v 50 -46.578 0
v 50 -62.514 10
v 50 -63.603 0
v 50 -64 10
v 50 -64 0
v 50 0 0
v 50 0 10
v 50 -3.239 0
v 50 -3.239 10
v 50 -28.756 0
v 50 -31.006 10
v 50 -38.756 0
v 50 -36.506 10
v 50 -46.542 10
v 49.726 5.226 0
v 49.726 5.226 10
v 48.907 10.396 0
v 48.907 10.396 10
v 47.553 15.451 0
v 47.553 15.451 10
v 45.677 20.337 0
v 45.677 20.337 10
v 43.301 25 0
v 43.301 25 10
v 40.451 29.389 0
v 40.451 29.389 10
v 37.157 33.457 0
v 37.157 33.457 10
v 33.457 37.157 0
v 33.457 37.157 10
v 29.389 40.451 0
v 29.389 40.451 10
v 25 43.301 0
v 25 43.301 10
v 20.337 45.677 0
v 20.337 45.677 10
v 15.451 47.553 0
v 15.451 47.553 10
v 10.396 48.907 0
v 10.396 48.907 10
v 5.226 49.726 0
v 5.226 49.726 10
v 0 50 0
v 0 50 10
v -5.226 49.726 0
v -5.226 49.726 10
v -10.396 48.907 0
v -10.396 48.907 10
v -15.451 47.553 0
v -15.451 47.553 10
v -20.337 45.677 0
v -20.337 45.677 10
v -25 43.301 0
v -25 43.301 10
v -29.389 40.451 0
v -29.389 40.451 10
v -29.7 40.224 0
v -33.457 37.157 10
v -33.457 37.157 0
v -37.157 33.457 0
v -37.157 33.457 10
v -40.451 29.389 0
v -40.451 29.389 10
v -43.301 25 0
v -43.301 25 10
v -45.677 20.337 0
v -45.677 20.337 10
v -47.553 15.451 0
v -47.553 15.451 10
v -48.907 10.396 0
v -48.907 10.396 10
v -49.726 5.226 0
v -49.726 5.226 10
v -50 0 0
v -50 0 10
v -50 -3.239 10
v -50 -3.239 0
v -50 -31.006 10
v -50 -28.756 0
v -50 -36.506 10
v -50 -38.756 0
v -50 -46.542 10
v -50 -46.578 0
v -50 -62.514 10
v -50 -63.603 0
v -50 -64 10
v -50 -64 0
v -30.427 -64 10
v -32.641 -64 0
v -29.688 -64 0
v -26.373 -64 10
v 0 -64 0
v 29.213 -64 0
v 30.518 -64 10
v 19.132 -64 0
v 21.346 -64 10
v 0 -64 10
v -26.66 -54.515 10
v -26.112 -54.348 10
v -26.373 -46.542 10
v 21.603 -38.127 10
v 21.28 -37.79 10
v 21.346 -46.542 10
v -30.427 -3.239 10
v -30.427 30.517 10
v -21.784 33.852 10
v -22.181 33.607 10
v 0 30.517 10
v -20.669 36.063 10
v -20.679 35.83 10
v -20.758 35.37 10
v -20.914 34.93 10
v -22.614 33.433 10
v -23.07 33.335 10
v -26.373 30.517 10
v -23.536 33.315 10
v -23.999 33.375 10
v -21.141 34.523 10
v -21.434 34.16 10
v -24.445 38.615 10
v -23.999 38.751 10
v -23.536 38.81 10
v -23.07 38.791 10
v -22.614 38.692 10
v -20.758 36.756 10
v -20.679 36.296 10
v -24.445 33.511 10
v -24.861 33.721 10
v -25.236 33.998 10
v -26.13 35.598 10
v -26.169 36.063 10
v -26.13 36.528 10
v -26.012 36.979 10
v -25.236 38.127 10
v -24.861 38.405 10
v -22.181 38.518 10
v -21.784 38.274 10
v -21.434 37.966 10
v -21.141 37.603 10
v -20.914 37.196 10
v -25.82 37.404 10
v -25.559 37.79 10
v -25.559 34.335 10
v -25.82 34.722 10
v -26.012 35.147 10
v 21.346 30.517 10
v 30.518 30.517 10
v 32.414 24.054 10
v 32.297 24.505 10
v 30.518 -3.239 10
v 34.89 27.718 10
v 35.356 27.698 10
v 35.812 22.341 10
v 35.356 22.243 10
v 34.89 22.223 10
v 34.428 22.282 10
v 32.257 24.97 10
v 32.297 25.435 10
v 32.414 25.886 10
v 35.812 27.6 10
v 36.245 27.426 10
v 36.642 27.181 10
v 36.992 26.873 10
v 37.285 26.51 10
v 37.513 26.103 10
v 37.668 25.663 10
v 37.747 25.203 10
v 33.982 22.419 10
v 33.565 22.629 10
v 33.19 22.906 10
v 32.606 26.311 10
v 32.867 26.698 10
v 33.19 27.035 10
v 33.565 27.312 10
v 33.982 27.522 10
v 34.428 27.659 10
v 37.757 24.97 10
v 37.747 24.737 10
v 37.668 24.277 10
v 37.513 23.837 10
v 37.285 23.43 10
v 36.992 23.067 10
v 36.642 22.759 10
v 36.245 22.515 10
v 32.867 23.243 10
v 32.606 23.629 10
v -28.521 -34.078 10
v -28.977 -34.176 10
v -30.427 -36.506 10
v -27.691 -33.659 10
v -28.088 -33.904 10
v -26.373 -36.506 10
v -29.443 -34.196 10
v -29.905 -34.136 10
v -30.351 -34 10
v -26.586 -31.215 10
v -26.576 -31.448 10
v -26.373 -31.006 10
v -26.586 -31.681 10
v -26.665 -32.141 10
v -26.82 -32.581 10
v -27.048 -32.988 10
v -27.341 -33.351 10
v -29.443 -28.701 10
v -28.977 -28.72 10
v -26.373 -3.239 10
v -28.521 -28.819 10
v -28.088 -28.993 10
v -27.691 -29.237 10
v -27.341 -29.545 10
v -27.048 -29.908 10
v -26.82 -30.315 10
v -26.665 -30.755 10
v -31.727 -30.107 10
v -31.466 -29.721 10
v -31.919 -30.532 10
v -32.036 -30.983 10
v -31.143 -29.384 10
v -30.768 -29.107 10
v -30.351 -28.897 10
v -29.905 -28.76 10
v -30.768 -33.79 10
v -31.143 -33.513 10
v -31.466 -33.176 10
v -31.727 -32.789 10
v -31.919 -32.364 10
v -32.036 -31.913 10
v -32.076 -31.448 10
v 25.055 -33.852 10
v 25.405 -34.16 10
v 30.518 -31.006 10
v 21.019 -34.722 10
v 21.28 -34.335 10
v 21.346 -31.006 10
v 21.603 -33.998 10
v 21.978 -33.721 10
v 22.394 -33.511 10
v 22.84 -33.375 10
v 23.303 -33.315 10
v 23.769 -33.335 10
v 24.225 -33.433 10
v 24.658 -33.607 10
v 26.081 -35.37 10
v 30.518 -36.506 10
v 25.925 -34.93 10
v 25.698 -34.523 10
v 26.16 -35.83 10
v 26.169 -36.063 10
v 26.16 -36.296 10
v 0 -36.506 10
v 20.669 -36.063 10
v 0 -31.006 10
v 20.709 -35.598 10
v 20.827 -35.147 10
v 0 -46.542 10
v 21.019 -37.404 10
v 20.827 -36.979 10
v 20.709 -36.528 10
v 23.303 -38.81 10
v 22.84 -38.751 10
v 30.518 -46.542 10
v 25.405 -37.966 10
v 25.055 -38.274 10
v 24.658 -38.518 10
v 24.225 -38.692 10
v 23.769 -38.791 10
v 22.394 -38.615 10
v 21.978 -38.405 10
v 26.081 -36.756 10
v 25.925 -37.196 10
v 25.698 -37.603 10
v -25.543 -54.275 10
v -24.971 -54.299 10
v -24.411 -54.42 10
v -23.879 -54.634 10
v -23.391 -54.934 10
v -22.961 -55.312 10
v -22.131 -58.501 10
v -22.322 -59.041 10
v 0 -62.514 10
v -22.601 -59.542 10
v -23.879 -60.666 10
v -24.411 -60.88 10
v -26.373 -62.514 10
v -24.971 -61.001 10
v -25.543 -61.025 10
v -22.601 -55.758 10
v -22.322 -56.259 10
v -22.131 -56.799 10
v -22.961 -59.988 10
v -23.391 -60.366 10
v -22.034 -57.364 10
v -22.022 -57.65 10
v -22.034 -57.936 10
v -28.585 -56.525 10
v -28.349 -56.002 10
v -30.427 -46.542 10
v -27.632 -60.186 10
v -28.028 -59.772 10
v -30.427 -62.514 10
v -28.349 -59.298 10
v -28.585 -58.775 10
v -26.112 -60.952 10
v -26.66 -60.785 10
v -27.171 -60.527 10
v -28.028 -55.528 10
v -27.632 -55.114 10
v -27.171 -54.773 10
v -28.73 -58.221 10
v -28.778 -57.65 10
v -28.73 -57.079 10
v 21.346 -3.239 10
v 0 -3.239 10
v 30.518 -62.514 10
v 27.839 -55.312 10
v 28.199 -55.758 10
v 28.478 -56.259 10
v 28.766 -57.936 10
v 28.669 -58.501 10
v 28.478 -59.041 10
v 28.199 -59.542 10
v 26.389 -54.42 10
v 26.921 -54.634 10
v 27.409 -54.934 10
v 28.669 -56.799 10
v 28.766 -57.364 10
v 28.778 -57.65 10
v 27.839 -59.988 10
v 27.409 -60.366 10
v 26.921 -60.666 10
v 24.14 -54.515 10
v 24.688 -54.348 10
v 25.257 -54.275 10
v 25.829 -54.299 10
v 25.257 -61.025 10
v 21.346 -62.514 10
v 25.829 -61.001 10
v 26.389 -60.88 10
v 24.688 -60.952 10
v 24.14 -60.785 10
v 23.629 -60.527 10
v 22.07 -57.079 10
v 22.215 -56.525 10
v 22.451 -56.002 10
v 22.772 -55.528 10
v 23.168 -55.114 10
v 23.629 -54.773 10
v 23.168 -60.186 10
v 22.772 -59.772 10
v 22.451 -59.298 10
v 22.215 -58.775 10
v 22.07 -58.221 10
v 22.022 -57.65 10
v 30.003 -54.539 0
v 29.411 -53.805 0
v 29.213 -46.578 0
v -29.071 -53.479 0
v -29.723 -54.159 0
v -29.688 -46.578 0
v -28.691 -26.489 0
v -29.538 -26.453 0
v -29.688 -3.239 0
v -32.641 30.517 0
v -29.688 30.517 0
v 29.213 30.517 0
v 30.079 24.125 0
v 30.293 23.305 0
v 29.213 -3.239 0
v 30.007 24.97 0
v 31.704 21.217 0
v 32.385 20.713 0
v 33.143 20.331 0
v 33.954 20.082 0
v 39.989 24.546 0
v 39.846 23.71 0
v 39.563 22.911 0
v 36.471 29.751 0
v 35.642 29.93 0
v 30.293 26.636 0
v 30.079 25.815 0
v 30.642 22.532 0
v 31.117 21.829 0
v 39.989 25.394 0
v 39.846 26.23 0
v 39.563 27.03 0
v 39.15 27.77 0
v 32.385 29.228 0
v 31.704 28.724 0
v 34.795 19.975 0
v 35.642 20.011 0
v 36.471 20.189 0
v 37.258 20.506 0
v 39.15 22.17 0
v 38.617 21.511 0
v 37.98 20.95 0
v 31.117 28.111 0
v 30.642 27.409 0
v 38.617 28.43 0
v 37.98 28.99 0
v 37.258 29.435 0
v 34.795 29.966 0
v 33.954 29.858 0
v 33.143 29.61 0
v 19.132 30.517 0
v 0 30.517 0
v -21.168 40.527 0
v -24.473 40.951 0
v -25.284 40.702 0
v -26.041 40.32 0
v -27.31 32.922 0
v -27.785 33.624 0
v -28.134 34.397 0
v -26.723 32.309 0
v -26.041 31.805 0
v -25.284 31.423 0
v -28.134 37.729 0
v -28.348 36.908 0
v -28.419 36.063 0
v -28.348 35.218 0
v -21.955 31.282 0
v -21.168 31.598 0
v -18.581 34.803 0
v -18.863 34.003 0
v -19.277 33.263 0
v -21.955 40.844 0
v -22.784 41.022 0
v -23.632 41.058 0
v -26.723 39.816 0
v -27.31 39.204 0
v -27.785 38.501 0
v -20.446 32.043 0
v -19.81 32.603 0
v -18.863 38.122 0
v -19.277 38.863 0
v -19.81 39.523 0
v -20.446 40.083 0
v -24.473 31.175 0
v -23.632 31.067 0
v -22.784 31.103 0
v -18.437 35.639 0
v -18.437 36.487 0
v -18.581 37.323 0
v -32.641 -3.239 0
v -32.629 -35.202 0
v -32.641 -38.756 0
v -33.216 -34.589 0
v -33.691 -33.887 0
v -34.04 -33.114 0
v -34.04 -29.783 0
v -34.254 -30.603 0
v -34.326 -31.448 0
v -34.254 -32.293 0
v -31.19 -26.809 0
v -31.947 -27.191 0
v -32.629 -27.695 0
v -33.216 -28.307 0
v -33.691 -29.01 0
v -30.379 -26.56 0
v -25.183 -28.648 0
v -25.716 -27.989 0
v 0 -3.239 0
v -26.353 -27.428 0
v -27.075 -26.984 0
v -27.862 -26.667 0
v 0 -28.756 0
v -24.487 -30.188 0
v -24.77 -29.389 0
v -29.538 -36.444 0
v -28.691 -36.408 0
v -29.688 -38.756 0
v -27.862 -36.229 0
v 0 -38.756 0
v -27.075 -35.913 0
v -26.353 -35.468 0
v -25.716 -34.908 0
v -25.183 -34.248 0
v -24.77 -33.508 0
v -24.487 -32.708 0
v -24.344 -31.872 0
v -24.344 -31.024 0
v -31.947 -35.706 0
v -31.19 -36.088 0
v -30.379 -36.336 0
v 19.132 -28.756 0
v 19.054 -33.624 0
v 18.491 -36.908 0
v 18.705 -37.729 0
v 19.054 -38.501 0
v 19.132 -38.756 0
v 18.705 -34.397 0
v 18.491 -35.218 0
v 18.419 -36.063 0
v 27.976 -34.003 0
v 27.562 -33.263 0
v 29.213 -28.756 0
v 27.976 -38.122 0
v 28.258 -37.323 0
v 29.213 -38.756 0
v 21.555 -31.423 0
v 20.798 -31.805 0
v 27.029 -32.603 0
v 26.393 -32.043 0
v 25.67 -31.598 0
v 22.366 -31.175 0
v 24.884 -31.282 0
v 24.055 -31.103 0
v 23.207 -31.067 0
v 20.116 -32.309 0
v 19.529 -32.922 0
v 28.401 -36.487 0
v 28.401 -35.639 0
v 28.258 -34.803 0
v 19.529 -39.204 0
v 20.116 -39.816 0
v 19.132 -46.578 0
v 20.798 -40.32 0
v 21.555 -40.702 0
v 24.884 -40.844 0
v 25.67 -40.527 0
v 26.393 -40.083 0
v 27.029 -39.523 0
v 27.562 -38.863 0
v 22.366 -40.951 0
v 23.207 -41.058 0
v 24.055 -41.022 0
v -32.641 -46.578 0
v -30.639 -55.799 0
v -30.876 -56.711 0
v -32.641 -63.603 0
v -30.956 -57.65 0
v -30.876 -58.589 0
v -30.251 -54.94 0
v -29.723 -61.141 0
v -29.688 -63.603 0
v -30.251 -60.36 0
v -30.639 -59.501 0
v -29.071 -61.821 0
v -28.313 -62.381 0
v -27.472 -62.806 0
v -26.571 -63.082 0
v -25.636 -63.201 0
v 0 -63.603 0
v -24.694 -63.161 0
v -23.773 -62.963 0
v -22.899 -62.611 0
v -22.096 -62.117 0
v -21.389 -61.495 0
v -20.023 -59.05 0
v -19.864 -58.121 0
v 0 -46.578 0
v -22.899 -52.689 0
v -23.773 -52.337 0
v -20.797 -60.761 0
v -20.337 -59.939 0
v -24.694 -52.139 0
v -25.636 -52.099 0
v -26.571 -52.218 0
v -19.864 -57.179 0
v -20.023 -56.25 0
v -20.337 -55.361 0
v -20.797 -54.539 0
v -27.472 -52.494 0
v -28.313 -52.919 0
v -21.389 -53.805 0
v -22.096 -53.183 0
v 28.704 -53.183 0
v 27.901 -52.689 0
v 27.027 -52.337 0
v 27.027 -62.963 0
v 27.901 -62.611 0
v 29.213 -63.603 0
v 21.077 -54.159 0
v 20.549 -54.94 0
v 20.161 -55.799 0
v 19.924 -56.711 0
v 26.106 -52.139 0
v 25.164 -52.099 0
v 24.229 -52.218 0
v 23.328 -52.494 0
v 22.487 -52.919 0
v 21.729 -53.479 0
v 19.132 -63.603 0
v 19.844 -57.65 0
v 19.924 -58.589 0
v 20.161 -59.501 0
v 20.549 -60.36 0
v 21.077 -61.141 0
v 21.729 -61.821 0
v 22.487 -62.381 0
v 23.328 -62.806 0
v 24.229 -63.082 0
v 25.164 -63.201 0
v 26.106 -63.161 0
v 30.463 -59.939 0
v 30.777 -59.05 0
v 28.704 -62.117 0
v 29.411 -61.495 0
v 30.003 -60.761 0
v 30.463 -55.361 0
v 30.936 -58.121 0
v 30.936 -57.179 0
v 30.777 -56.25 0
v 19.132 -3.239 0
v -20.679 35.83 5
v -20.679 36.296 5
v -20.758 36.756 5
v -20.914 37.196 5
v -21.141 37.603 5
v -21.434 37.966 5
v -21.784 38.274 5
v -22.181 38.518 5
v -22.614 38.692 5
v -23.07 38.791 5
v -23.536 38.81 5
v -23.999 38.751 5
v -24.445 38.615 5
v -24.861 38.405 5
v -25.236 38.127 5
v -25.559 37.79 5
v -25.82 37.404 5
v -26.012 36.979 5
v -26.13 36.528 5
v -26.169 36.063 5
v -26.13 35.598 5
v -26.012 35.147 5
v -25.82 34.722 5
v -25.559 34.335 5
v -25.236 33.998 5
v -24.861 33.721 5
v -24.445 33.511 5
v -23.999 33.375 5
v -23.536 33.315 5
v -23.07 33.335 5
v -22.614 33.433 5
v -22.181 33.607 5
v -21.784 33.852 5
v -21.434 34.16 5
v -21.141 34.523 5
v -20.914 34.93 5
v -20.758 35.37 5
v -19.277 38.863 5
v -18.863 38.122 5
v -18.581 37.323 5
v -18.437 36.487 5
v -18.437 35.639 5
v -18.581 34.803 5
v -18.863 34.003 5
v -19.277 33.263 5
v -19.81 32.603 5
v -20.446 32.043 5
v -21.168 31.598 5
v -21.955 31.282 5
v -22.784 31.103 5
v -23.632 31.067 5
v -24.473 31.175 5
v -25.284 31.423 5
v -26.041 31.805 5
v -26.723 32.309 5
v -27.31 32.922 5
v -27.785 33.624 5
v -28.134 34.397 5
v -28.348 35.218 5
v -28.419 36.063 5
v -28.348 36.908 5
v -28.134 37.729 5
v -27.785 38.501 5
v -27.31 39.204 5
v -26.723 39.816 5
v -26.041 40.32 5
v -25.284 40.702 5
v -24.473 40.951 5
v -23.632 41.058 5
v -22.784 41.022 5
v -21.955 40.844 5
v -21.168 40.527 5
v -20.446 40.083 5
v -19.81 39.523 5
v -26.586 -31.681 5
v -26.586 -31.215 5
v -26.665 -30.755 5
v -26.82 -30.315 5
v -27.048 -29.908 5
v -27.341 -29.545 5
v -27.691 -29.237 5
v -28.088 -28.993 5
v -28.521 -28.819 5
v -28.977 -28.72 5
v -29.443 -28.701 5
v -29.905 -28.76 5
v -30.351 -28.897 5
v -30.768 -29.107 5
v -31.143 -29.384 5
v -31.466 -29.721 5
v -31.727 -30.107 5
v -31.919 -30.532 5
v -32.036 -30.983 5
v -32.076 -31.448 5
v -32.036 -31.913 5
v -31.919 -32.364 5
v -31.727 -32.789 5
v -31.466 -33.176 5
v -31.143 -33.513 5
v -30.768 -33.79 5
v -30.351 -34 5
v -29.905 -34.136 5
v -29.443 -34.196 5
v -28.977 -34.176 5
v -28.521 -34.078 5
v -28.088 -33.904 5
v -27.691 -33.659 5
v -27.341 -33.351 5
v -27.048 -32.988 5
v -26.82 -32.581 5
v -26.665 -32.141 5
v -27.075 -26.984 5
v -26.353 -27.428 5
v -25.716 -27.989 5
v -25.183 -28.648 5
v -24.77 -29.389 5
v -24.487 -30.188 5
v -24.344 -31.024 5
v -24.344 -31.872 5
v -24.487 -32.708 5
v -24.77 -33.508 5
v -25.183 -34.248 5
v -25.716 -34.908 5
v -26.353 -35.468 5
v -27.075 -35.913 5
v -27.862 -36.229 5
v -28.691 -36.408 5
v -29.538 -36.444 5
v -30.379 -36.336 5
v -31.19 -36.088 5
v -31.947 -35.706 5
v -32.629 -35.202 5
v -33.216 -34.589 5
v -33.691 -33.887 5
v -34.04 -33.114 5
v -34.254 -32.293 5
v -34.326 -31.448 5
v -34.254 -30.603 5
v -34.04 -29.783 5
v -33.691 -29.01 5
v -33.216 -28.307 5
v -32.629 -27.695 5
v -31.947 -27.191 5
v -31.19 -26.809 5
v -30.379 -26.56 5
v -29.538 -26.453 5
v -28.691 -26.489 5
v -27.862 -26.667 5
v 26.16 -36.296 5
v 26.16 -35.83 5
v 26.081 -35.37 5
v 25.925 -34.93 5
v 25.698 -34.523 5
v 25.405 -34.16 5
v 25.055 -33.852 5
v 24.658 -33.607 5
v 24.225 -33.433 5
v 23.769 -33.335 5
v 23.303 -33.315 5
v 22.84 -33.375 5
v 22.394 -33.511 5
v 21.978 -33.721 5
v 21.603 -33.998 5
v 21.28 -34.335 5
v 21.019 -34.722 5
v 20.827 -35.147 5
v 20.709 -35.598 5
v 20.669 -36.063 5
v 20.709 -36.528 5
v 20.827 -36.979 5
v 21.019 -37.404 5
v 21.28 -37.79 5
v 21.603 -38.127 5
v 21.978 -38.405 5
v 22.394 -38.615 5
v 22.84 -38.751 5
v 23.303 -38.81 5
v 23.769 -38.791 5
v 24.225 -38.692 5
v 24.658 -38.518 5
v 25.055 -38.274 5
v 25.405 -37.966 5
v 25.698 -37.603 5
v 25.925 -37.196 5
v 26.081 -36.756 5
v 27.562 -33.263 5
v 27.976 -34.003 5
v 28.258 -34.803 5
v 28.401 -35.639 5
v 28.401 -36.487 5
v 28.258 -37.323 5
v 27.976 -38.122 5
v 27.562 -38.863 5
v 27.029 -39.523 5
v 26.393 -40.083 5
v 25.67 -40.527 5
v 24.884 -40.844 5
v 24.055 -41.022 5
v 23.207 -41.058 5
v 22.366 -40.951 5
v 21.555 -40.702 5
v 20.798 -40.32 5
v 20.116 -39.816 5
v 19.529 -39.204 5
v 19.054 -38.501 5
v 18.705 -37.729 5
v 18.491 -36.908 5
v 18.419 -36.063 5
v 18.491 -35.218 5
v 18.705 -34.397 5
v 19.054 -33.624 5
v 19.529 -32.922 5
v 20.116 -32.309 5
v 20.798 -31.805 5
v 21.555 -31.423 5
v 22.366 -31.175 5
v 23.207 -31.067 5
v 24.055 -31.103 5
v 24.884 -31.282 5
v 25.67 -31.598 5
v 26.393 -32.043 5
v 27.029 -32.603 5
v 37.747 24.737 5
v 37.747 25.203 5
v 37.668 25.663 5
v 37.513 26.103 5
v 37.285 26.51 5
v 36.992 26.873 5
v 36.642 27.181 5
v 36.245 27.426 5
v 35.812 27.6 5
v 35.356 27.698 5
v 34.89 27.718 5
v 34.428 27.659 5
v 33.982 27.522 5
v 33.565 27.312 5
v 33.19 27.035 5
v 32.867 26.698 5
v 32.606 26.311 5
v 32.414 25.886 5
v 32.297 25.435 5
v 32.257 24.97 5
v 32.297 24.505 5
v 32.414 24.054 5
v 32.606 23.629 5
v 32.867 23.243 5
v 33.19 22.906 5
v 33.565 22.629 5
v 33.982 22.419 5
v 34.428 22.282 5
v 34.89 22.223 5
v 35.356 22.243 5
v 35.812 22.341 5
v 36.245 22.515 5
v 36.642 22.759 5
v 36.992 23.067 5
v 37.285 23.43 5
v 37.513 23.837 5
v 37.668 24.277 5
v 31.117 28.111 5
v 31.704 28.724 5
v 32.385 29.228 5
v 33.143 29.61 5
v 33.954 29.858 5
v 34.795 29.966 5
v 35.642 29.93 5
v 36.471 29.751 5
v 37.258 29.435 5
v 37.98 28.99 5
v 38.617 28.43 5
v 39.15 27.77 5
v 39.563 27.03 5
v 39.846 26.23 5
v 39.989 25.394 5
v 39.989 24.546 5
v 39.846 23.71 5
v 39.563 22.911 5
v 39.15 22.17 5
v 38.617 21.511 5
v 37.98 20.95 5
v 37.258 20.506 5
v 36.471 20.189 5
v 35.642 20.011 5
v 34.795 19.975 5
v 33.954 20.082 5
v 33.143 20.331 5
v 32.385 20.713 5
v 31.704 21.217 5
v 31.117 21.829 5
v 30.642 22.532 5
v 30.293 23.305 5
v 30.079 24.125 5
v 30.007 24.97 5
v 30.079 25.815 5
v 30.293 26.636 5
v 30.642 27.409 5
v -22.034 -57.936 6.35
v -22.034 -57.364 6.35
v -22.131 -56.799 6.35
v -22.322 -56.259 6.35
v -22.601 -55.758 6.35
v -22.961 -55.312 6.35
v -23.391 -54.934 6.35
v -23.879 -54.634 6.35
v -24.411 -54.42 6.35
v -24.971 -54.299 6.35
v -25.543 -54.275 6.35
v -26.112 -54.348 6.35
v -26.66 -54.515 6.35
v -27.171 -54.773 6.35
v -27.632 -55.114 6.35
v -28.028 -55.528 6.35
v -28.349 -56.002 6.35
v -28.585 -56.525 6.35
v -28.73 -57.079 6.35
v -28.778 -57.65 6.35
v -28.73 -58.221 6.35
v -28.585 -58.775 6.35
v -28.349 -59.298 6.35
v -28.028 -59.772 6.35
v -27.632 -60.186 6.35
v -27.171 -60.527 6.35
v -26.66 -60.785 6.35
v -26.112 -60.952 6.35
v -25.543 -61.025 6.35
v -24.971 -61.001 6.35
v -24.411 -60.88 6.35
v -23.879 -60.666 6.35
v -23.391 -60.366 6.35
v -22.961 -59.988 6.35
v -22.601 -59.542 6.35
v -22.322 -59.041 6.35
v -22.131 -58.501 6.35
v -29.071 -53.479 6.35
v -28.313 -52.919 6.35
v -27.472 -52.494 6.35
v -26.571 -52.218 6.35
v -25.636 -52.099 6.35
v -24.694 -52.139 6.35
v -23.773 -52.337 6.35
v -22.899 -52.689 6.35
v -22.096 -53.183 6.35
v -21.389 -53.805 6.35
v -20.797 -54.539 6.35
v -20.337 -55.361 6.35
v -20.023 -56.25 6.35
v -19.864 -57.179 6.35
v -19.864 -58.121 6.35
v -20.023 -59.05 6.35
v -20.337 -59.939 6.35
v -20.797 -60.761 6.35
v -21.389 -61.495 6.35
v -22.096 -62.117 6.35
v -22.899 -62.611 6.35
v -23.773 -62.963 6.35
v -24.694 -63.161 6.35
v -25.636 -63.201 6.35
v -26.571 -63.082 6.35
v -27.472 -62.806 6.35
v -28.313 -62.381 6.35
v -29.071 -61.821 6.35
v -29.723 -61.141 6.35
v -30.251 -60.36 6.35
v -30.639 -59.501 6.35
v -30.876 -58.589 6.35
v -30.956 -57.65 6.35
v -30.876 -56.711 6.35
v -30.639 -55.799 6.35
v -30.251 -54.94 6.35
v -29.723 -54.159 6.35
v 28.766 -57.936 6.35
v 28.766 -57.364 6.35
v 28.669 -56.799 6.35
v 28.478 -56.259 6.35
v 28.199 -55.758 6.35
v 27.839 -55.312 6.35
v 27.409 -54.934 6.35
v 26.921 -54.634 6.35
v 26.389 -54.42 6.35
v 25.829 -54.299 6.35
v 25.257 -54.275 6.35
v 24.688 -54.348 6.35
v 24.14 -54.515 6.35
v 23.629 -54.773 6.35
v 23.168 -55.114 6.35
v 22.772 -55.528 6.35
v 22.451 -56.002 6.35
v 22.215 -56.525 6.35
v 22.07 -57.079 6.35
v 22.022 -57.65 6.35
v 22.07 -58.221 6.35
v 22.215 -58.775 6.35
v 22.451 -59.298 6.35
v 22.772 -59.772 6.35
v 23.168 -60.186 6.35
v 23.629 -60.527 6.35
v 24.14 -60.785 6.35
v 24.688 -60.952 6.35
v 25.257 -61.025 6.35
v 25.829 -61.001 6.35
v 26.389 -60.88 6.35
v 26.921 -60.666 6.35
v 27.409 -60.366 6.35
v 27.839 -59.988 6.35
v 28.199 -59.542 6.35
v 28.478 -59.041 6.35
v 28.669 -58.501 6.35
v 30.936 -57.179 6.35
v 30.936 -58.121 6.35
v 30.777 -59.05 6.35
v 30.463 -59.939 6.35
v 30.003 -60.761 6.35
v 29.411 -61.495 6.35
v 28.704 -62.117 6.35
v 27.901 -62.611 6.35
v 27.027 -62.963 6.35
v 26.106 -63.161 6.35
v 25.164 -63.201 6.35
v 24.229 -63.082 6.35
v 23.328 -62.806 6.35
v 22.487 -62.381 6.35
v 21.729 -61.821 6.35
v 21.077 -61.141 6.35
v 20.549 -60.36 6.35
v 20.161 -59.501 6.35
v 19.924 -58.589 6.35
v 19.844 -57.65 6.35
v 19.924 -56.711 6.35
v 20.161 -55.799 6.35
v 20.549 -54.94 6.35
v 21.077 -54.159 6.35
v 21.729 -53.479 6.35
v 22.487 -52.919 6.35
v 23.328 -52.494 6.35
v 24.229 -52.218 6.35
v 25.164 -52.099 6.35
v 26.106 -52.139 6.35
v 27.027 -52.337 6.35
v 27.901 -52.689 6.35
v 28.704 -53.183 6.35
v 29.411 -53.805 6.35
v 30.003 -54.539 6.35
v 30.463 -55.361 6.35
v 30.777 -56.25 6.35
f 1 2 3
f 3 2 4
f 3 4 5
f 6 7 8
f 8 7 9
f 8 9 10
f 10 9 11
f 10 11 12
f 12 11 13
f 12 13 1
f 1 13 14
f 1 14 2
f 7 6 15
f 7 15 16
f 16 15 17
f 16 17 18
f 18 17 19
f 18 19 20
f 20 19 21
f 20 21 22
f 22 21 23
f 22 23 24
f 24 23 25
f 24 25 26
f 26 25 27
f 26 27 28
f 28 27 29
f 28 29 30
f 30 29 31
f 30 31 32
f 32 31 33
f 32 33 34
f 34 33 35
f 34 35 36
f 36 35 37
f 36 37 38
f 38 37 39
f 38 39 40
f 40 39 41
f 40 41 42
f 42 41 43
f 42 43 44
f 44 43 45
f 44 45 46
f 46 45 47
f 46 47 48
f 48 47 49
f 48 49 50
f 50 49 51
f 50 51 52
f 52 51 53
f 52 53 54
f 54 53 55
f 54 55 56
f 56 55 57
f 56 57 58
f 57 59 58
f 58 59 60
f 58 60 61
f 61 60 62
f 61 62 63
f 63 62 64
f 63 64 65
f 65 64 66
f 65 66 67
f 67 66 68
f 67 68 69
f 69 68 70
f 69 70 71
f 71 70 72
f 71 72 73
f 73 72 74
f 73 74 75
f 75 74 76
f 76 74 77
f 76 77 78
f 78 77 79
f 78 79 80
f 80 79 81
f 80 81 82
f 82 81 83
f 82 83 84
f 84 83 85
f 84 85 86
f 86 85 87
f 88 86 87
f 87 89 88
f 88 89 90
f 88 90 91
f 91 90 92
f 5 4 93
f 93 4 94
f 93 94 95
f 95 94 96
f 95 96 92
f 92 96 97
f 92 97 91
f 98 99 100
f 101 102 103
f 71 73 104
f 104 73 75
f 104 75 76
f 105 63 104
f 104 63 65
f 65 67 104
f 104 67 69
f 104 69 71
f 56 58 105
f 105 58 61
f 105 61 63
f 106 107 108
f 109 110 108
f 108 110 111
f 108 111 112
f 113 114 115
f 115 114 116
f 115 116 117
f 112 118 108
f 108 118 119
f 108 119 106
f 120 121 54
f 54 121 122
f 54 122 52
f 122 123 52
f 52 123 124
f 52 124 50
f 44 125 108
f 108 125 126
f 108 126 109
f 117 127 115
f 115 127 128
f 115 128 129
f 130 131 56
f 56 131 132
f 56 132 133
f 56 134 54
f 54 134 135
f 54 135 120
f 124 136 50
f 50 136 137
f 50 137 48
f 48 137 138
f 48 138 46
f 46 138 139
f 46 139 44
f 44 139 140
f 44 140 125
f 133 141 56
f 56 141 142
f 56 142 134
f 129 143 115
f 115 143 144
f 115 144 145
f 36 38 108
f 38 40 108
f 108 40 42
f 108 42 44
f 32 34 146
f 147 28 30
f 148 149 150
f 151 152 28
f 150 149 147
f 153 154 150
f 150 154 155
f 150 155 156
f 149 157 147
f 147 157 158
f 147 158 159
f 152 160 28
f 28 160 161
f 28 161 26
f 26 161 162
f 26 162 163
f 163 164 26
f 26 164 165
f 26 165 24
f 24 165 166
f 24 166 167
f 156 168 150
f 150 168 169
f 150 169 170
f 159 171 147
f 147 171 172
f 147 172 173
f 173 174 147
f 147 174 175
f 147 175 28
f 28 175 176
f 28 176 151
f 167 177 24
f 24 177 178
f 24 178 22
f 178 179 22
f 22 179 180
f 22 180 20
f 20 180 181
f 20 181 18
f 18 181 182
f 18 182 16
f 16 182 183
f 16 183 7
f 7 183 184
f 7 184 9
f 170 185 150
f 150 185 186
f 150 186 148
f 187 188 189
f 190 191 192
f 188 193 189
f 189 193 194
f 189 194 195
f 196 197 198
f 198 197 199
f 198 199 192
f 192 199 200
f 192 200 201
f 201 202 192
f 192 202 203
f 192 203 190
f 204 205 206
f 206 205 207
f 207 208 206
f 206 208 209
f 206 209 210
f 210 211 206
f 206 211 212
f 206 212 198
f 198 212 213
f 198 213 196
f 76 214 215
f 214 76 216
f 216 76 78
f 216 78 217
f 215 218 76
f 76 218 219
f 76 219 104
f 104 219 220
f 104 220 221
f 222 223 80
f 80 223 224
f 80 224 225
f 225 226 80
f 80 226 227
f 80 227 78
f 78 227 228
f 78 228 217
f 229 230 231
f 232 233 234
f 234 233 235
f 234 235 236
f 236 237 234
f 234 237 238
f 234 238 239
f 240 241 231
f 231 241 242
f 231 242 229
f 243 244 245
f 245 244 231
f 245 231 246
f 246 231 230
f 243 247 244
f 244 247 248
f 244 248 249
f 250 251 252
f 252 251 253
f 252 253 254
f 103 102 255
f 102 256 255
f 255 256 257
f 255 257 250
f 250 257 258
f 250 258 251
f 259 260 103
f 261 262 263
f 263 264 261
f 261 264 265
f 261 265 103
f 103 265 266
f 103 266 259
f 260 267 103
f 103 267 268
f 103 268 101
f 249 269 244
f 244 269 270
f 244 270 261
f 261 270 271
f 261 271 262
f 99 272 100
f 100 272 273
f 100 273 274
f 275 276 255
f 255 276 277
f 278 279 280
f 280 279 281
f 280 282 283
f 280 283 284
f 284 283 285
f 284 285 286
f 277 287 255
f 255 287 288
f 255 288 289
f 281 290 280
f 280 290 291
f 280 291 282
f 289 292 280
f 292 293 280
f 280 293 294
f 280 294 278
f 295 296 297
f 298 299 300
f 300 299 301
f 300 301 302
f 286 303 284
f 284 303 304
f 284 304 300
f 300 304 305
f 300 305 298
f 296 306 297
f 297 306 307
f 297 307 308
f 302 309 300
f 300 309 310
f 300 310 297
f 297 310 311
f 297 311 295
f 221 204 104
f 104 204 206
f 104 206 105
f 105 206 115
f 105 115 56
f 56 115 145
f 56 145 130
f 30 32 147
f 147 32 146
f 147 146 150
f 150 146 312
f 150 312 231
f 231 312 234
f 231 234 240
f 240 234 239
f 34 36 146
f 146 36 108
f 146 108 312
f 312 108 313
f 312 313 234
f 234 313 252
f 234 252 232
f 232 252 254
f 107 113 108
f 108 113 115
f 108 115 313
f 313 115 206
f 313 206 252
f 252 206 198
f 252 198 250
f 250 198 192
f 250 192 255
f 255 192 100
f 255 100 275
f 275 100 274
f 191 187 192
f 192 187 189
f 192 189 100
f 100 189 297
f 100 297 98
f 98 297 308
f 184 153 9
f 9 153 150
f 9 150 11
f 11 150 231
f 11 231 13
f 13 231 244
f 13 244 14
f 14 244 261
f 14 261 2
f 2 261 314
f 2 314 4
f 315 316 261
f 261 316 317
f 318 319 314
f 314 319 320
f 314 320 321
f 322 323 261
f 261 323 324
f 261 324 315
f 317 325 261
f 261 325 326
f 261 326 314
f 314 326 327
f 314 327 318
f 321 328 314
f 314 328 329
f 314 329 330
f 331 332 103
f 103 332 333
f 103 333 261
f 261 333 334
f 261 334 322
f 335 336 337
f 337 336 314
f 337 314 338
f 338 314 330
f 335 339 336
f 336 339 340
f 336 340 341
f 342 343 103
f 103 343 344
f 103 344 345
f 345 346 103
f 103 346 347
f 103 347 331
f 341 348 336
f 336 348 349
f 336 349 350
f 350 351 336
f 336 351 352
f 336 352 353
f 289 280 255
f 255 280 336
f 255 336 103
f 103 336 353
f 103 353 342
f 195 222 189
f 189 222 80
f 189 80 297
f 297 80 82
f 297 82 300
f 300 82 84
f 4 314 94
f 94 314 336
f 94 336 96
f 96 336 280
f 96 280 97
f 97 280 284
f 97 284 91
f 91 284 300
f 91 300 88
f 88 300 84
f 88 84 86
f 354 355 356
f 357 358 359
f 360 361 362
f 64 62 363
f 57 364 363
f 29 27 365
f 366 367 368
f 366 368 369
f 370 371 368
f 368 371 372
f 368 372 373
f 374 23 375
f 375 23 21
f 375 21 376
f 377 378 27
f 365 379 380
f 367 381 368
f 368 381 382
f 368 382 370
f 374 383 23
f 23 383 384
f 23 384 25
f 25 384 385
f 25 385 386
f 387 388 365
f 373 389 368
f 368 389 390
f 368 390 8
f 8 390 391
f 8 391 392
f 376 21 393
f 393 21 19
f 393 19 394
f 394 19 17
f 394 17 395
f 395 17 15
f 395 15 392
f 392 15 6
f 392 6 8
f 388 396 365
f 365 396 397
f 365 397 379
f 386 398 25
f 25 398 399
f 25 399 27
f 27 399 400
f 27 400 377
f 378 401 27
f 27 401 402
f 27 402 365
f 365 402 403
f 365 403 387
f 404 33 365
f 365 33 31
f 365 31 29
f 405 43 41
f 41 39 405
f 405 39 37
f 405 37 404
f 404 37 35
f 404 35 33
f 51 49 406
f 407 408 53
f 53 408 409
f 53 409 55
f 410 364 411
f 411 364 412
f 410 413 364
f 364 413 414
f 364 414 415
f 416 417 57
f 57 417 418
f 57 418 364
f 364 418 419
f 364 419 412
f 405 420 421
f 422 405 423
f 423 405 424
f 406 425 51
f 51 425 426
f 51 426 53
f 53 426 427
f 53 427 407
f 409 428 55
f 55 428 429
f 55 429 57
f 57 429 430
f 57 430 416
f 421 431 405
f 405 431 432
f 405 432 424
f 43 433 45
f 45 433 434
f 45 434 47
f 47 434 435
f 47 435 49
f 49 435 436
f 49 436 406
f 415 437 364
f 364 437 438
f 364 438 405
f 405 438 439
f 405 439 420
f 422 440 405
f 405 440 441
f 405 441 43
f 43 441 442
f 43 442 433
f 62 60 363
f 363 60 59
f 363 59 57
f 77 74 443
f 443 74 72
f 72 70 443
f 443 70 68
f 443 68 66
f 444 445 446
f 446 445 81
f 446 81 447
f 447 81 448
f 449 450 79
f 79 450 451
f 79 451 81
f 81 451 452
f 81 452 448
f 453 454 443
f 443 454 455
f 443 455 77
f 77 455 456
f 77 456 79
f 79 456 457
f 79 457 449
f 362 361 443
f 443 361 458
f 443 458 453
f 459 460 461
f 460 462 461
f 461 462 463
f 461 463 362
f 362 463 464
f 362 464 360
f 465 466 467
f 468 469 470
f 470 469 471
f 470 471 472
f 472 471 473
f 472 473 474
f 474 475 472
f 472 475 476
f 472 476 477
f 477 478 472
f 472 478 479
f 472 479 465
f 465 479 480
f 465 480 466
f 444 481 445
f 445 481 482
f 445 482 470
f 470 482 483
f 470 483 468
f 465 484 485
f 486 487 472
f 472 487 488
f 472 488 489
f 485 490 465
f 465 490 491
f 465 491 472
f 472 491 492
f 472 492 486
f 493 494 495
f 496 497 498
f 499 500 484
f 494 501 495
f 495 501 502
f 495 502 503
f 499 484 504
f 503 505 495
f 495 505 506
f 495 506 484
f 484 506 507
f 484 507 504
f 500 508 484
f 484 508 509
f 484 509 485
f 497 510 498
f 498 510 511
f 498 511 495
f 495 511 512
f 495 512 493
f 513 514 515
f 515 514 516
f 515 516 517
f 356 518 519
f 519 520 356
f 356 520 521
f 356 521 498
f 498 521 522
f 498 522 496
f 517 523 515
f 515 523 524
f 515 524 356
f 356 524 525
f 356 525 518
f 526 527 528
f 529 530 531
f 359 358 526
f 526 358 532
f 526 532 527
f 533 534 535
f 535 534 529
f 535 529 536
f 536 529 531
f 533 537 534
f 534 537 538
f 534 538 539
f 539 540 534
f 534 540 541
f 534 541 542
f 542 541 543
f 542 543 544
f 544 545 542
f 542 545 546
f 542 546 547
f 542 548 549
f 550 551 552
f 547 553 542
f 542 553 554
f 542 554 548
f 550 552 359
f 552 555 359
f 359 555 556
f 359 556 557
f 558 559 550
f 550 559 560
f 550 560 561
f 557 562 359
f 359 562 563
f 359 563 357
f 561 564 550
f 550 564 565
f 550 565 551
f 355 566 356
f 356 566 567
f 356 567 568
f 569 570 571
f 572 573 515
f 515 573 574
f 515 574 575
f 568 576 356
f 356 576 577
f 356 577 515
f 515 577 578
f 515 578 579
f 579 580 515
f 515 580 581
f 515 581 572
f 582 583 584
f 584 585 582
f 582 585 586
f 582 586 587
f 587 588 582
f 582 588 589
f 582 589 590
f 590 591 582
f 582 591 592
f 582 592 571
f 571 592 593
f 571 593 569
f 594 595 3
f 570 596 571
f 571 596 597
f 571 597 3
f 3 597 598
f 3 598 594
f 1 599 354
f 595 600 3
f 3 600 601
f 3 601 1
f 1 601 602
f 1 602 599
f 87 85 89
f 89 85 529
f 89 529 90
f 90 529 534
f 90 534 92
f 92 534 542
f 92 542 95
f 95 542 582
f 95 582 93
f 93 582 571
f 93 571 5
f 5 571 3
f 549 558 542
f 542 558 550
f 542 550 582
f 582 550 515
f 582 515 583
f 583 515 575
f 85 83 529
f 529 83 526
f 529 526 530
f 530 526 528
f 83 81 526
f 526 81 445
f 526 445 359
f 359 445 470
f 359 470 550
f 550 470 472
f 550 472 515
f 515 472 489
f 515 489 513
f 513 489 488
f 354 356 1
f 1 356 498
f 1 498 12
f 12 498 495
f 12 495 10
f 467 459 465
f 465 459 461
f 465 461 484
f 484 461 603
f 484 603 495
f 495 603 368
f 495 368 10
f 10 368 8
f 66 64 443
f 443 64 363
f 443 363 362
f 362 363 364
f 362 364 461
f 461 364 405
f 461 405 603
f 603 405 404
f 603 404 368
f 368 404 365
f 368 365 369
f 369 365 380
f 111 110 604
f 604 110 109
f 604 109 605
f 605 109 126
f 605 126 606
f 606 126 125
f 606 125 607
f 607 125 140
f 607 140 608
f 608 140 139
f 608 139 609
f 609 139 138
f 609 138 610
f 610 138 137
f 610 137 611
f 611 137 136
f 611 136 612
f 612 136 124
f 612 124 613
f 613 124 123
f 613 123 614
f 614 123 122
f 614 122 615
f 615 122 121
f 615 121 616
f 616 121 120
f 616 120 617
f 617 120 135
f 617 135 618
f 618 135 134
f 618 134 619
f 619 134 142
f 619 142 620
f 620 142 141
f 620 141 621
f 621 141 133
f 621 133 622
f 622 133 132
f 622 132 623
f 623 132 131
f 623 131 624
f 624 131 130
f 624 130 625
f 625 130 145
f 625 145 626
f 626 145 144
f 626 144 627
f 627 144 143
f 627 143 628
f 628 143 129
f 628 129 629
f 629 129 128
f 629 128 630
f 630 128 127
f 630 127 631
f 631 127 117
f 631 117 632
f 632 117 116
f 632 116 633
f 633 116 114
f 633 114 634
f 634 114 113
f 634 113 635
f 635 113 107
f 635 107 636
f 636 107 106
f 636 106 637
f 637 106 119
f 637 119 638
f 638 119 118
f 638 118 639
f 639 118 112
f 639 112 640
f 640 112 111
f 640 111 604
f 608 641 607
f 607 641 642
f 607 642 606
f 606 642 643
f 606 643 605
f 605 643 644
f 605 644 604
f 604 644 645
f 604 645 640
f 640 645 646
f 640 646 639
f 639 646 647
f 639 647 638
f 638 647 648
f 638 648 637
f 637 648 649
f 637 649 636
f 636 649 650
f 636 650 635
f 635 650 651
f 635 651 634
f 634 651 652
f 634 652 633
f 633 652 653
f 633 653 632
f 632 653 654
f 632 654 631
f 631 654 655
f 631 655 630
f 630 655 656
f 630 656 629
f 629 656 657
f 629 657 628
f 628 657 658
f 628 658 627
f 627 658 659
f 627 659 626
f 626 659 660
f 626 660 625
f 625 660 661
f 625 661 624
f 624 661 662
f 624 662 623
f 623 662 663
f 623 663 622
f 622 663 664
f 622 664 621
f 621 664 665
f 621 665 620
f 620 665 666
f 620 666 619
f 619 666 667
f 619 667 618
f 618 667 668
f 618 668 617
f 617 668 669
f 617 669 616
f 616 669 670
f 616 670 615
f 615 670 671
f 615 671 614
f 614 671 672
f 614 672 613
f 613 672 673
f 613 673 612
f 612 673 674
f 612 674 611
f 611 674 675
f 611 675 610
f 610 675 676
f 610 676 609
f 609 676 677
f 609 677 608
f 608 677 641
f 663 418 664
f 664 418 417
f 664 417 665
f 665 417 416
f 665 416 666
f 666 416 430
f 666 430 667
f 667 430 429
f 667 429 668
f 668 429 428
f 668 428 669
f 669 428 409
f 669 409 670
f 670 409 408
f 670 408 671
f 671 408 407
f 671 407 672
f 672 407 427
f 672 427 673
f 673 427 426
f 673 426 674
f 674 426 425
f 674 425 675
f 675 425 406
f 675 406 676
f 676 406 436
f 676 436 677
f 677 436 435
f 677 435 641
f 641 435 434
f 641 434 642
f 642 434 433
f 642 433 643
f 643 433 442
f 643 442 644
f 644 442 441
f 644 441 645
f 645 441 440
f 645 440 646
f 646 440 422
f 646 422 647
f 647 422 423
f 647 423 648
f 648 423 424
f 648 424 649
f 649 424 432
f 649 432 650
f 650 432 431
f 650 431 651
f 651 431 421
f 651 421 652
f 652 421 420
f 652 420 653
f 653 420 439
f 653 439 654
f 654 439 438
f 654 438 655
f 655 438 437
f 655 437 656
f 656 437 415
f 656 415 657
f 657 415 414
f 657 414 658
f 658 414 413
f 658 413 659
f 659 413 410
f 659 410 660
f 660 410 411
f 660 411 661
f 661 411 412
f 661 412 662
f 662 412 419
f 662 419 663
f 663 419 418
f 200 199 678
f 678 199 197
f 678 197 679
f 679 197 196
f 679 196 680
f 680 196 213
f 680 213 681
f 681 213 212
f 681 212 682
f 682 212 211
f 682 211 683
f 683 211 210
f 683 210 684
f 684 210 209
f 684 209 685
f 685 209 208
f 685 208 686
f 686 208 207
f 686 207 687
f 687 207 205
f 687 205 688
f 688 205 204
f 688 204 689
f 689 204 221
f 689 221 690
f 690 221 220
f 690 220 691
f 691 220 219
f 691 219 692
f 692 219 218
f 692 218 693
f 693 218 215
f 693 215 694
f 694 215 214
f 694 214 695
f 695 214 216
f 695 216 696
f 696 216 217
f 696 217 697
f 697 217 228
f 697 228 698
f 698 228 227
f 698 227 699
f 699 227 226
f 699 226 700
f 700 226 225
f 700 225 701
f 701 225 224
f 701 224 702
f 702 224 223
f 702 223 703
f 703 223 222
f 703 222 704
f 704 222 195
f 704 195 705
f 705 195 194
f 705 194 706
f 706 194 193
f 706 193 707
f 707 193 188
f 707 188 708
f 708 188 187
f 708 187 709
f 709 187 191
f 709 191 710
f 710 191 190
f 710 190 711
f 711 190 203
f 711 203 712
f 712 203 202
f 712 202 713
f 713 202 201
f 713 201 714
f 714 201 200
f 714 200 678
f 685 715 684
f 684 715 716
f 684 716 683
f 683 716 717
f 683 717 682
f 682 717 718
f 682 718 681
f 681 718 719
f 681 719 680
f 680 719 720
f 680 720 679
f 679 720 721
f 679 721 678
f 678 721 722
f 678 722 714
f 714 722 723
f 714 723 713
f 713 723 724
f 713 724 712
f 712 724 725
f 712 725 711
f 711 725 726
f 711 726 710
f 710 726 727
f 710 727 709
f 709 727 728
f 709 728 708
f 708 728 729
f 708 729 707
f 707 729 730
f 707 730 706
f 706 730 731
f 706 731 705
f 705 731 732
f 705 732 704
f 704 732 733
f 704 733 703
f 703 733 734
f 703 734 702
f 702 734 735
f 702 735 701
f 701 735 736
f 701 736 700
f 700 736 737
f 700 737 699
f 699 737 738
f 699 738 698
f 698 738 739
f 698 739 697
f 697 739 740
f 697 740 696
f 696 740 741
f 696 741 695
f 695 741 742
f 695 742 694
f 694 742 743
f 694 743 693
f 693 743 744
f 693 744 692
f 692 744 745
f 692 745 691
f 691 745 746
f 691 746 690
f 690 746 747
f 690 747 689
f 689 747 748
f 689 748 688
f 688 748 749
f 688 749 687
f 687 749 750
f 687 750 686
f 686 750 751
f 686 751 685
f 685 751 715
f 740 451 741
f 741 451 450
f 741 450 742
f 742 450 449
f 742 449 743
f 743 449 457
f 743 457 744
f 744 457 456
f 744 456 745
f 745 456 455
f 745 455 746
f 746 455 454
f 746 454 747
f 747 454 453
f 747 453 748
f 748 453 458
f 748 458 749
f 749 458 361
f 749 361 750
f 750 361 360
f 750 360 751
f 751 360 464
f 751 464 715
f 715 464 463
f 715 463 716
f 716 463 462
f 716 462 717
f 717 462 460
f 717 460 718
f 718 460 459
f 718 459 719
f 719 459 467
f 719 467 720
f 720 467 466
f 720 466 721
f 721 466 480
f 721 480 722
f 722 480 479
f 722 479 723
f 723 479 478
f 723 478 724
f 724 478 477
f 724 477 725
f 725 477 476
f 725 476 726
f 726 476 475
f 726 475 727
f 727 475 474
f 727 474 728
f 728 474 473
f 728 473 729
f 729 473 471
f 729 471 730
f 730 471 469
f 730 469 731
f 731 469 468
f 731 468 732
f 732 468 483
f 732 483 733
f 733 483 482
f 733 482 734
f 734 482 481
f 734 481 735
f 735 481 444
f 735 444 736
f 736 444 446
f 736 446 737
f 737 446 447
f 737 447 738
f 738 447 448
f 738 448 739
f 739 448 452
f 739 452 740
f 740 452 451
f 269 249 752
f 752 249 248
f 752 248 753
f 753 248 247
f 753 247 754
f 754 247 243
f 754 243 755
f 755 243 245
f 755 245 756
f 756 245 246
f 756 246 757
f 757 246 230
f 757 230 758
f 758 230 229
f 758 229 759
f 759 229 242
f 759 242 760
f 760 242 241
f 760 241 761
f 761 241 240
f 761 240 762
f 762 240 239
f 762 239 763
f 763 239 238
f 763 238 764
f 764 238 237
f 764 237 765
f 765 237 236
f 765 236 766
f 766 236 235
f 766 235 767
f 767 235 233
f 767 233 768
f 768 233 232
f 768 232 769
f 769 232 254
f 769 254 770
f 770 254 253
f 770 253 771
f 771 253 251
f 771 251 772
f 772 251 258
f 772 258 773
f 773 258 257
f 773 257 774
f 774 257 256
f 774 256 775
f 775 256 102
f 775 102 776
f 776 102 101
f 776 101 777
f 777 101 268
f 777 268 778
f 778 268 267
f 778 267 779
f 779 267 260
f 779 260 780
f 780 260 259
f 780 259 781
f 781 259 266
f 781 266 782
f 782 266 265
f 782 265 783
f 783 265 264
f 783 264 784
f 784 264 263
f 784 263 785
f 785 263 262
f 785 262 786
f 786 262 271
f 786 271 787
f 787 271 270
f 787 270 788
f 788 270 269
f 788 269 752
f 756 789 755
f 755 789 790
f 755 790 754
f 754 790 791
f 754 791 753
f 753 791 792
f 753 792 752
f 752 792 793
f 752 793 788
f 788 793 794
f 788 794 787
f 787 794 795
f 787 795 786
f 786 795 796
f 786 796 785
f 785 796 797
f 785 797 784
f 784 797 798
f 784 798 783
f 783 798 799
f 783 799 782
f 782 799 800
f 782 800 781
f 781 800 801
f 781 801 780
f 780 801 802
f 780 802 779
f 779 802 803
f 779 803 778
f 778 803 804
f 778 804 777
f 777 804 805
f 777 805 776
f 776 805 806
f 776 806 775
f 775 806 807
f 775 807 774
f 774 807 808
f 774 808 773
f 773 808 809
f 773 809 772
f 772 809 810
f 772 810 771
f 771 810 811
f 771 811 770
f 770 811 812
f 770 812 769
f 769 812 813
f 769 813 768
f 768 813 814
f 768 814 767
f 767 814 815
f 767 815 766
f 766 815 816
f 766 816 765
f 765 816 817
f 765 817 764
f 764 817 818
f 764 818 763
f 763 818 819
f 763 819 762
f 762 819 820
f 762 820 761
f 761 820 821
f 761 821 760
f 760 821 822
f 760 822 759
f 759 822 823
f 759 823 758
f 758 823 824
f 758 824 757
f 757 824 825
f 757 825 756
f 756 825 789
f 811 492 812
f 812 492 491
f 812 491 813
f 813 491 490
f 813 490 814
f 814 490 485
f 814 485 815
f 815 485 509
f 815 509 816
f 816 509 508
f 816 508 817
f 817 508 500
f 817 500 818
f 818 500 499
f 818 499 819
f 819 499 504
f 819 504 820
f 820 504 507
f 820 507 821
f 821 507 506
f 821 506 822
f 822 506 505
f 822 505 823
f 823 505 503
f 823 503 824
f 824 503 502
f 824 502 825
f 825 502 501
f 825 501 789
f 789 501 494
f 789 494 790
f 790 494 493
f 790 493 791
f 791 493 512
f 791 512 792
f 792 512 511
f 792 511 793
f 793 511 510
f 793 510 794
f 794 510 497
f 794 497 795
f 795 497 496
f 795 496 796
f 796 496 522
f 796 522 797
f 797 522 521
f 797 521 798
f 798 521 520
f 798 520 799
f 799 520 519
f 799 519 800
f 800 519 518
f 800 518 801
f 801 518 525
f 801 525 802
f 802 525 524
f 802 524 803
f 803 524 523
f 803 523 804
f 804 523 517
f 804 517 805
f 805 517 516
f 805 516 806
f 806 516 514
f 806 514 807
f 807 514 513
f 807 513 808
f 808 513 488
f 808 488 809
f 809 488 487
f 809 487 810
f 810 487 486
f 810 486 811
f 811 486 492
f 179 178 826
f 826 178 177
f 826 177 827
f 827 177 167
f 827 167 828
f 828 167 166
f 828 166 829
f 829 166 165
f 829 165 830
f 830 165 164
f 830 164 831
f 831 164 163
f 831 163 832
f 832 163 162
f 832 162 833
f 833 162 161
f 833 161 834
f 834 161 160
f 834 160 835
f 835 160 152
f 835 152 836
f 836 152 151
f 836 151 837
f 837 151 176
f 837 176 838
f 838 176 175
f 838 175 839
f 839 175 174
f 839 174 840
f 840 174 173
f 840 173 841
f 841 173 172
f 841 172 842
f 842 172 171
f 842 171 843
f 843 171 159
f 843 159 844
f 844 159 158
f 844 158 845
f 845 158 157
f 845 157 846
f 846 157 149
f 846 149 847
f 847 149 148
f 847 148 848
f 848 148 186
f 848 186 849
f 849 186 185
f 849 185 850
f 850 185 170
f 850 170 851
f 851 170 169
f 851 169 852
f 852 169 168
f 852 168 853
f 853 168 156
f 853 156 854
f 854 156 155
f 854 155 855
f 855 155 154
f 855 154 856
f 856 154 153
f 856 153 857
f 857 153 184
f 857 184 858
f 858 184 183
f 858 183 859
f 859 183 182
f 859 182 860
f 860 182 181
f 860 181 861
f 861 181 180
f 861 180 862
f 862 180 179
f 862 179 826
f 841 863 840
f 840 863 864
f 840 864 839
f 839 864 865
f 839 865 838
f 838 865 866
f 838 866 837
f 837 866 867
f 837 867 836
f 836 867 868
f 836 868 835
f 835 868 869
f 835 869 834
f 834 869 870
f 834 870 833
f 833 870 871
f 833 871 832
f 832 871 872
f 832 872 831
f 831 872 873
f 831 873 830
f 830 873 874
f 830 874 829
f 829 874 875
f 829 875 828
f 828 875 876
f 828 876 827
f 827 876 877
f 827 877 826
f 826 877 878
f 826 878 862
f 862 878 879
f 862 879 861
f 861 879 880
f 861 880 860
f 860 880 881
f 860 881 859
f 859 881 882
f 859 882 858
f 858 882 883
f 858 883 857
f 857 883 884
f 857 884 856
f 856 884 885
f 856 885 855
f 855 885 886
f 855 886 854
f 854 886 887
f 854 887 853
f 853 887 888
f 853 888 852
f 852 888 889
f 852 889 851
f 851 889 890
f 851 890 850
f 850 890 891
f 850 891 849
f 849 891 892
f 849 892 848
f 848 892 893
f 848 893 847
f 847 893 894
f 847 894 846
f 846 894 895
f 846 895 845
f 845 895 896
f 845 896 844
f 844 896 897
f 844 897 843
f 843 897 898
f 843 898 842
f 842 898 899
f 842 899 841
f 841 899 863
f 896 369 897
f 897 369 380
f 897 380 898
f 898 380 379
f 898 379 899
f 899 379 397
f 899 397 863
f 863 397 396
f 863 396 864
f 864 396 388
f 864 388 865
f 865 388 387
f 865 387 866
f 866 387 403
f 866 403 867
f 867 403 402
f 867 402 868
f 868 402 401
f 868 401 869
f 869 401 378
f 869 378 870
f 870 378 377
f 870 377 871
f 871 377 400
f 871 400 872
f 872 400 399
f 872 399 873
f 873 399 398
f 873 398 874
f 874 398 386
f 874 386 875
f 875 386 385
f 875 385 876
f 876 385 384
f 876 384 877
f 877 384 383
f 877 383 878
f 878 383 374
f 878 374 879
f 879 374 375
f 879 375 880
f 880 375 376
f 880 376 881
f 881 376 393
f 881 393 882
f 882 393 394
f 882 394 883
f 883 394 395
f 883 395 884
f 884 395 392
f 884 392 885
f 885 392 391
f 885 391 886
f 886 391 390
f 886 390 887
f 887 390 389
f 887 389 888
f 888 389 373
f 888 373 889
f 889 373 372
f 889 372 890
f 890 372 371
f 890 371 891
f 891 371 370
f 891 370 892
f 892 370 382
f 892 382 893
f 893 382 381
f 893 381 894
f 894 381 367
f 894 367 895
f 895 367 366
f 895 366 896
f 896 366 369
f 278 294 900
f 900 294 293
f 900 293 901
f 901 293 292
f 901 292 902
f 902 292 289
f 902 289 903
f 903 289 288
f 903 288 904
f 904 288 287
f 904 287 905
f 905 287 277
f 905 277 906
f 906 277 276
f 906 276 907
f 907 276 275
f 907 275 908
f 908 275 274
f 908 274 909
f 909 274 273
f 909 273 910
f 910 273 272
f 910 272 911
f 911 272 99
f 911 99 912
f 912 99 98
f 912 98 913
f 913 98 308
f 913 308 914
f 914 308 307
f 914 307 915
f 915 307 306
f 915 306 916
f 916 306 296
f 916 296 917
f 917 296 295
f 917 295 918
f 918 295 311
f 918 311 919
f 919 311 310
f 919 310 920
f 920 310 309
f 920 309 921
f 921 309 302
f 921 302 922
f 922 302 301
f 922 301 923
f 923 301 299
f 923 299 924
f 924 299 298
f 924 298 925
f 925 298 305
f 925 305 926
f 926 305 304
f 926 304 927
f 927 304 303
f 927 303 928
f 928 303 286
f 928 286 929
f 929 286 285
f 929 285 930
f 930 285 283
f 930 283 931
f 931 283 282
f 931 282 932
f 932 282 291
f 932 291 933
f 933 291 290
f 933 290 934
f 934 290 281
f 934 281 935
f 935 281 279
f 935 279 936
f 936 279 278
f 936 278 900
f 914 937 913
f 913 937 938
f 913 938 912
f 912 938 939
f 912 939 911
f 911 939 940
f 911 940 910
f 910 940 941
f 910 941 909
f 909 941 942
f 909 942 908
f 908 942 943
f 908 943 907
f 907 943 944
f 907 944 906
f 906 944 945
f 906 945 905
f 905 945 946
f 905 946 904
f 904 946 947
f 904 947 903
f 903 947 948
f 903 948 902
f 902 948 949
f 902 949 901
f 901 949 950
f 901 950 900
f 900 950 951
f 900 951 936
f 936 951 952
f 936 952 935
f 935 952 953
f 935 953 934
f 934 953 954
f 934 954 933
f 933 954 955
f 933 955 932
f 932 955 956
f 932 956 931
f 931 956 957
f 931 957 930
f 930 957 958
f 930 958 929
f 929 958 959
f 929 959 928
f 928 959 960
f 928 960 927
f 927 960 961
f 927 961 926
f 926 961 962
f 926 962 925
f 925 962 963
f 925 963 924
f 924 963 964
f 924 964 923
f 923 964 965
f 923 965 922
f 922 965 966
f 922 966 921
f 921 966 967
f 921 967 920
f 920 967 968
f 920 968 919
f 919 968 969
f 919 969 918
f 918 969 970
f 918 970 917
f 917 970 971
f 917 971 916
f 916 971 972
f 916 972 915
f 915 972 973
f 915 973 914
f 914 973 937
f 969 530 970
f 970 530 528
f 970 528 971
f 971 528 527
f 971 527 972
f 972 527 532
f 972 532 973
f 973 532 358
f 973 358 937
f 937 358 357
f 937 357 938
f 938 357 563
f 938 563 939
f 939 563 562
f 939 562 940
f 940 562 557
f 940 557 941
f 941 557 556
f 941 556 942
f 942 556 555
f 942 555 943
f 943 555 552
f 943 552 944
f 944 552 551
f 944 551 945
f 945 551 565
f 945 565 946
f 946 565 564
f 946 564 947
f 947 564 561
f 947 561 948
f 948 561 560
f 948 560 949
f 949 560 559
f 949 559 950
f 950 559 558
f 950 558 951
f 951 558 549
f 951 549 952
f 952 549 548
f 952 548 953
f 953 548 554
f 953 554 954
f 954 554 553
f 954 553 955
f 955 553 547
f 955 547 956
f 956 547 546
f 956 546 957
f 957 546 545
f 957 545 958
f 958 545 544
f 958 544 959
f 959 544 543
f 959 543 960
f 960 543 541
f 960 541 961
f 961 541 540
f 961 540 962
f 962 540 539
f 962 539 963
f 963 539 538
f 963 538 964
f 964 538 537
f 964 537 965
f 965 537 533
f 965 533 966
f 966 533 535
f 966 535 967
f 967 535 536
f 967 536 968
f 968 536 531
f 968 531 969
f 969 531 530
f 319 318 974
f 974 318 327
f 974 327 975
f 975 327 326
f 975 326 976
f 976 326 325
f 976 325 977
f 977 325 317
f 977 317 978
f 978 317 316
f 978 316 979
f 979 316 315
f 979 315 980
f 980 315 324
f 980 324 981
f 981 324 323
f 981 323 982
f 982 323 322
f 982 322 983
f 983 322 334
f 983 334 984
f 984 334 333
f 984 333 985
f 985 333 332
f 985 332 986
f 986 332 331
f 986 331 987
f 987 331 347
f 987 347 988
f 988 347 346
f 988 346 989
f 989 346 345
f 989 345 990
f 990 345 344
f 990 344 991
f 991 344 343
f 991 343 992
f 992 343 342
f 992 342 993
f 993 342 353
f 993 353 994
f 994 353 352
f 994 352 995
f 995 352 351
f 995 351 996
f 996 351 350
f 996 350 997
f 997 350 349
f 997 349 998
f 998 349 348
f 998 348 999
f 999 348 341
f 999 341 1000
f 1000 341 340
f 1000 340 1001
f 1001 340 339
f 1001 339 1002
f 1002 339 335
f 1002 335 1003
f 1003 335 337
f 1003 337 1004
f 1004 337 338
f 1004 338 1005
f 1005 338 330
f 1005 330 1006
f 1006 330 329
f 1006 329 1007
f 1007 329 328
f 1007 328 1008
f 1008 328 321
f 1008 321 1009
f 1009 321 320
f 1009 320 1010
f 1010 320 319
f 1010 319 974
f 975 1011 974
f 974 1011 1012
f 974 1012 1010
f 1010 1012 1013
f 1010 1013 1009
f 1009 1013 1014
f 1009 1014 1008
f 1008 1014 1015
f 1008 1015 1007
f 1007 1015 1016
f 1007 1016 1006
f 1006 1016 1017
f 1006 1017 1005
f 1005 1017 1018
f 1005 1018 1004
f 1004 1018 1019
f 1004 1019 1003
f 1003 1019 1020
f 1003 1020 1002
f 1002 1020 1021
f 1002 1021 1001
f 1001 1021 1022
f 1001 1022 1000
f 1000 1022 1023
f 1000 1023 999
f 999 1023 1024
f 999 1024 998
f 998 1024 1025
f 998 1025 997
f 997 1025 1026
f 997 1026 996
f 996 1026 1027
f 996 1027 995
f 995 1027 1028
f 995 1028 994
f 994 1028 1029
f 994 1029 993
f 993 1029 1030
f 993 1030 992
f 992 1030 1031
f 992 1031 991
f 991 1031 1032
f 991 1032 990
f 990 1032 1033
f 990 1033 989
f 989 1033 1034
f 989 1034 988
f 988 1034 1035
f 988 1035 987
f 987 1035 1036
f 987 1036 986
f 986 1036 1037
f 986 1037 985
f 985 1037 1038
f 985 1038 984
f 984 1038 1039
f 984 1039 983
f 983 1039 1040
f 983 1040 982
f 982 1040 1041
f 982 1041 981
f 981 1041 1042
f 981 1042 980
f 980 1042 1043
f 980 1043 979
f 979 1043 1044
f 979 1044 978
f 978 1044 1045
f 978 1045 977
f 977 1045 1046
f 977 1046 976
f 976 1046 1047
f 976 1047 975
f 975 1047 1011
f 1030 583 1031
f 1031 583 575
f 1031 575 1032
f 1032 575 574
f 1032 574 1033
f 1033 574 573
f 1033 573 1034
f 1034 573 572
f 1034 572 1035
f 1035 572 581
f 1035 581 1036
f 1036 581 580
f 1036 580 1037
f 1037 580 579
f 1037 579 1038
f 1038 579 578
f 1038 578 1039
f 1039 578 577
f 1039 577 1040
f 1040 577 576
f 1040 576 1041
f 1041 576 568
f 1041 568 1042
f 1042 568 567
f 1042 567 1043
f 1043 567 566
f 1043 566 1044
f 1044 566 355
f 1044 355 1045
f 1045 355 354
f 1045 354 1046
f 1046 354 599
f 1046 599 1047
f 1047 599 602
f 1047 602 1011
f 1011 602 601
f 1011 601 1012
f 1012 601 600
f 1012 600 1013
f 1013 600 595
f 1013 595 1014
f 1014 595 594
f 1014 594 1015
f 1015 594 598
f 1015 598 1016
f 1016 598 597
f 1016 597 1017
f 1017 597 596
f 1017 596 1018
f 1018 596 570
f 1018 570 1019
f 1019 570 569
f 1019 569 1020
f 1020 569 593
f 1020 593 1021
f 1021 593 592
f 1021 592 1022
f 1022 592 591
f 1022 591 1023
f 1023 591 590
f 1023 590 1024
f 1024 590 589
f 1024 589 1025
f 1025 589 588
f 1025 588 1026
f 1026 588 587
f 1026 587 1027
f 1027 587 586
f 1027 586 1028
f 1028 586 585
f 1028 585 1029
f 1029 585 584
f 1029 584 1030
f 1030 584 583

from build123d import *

# Parameters (mm, degrees)
SKETCH1_R                                        = 50
SKETCH1_W                                        = 100
SKETCH1_H                                        = 64
BOSS_EXTRUDE1_DEPTH                              = 10
CBORE_FOR_M5_SHCS1_D                             = 5.5
CBORE_FOR_M5_SHCS1_CBORE_D                       = 10
CBORE_FOR_M5_SHCS1_CBORE_DEPTH                   = 5
CBORE_FOR_1_4_SOCKET_HEAD_CAP_SCREW1_D           = 6.7564
CBORE_FOR_1_4_SOCKET_HEAD_CAP_SCREW1_CBORE_D     = 11.1125
CBORE_FOR_1_4_SOCKET_HEAD_CAP_SCREW1_CBORE_DEPTH = 6.35


with BuildPart() as part:
    # Sketch1 → Boss-Extrude1 (new body)
    with BuildSketch(Plane.XY):
        Circle(SKETCH1_R)
        with Locations((0, -32)):
            Rectangle(SKETCH1_W, SKETCH1_H)
    extrude(amount=BOSS_EXTRUDE1_DEPTH)

    # CBORE for M5 SHCS1 (through all)
    with Locations(Plane(origin=(0, 0, 0), x_dir=(-1, 0, 0), z_dir=(0, 0, -1))):
        with Locations((-35.006967289, 24.970227096), (-23.419478506, -36.062834422), (29.325929483, -31.44820917), (23.419478506, 36.062834422)):
            CounterBoreHole(CBORE_FOR_M5_SHCS1_D / 2, CBORE_FOR_M5_SHCS1_CBORE_D / 2, CBORE_FOR_M5_SHCS1_CBORE_DEPTH)

    # CBORE for 1/4 Socket Head Cap Screw1 (through all)
    with Locations(Plane(origin=(0, 0, 0), x_dir=(-1, 0, 0), z_dir=(0, 0, -1))):
        with Locations((-25.4, -57.65), (25.4, -57.65)):
            CounterBoreHole(CBORE_FOR_1_4_SOCKET_HEAD_CAP_SCREW1_D / 2, CBORE_FOR_1_4_SOCKET_HEAD_CAP_SCREW1_CBORE_D / 2, CBORE_FOR_1_4_SOCKET_HEAD_CAP_SCREW1_CBORE_DEPTH)


solid = part.part
